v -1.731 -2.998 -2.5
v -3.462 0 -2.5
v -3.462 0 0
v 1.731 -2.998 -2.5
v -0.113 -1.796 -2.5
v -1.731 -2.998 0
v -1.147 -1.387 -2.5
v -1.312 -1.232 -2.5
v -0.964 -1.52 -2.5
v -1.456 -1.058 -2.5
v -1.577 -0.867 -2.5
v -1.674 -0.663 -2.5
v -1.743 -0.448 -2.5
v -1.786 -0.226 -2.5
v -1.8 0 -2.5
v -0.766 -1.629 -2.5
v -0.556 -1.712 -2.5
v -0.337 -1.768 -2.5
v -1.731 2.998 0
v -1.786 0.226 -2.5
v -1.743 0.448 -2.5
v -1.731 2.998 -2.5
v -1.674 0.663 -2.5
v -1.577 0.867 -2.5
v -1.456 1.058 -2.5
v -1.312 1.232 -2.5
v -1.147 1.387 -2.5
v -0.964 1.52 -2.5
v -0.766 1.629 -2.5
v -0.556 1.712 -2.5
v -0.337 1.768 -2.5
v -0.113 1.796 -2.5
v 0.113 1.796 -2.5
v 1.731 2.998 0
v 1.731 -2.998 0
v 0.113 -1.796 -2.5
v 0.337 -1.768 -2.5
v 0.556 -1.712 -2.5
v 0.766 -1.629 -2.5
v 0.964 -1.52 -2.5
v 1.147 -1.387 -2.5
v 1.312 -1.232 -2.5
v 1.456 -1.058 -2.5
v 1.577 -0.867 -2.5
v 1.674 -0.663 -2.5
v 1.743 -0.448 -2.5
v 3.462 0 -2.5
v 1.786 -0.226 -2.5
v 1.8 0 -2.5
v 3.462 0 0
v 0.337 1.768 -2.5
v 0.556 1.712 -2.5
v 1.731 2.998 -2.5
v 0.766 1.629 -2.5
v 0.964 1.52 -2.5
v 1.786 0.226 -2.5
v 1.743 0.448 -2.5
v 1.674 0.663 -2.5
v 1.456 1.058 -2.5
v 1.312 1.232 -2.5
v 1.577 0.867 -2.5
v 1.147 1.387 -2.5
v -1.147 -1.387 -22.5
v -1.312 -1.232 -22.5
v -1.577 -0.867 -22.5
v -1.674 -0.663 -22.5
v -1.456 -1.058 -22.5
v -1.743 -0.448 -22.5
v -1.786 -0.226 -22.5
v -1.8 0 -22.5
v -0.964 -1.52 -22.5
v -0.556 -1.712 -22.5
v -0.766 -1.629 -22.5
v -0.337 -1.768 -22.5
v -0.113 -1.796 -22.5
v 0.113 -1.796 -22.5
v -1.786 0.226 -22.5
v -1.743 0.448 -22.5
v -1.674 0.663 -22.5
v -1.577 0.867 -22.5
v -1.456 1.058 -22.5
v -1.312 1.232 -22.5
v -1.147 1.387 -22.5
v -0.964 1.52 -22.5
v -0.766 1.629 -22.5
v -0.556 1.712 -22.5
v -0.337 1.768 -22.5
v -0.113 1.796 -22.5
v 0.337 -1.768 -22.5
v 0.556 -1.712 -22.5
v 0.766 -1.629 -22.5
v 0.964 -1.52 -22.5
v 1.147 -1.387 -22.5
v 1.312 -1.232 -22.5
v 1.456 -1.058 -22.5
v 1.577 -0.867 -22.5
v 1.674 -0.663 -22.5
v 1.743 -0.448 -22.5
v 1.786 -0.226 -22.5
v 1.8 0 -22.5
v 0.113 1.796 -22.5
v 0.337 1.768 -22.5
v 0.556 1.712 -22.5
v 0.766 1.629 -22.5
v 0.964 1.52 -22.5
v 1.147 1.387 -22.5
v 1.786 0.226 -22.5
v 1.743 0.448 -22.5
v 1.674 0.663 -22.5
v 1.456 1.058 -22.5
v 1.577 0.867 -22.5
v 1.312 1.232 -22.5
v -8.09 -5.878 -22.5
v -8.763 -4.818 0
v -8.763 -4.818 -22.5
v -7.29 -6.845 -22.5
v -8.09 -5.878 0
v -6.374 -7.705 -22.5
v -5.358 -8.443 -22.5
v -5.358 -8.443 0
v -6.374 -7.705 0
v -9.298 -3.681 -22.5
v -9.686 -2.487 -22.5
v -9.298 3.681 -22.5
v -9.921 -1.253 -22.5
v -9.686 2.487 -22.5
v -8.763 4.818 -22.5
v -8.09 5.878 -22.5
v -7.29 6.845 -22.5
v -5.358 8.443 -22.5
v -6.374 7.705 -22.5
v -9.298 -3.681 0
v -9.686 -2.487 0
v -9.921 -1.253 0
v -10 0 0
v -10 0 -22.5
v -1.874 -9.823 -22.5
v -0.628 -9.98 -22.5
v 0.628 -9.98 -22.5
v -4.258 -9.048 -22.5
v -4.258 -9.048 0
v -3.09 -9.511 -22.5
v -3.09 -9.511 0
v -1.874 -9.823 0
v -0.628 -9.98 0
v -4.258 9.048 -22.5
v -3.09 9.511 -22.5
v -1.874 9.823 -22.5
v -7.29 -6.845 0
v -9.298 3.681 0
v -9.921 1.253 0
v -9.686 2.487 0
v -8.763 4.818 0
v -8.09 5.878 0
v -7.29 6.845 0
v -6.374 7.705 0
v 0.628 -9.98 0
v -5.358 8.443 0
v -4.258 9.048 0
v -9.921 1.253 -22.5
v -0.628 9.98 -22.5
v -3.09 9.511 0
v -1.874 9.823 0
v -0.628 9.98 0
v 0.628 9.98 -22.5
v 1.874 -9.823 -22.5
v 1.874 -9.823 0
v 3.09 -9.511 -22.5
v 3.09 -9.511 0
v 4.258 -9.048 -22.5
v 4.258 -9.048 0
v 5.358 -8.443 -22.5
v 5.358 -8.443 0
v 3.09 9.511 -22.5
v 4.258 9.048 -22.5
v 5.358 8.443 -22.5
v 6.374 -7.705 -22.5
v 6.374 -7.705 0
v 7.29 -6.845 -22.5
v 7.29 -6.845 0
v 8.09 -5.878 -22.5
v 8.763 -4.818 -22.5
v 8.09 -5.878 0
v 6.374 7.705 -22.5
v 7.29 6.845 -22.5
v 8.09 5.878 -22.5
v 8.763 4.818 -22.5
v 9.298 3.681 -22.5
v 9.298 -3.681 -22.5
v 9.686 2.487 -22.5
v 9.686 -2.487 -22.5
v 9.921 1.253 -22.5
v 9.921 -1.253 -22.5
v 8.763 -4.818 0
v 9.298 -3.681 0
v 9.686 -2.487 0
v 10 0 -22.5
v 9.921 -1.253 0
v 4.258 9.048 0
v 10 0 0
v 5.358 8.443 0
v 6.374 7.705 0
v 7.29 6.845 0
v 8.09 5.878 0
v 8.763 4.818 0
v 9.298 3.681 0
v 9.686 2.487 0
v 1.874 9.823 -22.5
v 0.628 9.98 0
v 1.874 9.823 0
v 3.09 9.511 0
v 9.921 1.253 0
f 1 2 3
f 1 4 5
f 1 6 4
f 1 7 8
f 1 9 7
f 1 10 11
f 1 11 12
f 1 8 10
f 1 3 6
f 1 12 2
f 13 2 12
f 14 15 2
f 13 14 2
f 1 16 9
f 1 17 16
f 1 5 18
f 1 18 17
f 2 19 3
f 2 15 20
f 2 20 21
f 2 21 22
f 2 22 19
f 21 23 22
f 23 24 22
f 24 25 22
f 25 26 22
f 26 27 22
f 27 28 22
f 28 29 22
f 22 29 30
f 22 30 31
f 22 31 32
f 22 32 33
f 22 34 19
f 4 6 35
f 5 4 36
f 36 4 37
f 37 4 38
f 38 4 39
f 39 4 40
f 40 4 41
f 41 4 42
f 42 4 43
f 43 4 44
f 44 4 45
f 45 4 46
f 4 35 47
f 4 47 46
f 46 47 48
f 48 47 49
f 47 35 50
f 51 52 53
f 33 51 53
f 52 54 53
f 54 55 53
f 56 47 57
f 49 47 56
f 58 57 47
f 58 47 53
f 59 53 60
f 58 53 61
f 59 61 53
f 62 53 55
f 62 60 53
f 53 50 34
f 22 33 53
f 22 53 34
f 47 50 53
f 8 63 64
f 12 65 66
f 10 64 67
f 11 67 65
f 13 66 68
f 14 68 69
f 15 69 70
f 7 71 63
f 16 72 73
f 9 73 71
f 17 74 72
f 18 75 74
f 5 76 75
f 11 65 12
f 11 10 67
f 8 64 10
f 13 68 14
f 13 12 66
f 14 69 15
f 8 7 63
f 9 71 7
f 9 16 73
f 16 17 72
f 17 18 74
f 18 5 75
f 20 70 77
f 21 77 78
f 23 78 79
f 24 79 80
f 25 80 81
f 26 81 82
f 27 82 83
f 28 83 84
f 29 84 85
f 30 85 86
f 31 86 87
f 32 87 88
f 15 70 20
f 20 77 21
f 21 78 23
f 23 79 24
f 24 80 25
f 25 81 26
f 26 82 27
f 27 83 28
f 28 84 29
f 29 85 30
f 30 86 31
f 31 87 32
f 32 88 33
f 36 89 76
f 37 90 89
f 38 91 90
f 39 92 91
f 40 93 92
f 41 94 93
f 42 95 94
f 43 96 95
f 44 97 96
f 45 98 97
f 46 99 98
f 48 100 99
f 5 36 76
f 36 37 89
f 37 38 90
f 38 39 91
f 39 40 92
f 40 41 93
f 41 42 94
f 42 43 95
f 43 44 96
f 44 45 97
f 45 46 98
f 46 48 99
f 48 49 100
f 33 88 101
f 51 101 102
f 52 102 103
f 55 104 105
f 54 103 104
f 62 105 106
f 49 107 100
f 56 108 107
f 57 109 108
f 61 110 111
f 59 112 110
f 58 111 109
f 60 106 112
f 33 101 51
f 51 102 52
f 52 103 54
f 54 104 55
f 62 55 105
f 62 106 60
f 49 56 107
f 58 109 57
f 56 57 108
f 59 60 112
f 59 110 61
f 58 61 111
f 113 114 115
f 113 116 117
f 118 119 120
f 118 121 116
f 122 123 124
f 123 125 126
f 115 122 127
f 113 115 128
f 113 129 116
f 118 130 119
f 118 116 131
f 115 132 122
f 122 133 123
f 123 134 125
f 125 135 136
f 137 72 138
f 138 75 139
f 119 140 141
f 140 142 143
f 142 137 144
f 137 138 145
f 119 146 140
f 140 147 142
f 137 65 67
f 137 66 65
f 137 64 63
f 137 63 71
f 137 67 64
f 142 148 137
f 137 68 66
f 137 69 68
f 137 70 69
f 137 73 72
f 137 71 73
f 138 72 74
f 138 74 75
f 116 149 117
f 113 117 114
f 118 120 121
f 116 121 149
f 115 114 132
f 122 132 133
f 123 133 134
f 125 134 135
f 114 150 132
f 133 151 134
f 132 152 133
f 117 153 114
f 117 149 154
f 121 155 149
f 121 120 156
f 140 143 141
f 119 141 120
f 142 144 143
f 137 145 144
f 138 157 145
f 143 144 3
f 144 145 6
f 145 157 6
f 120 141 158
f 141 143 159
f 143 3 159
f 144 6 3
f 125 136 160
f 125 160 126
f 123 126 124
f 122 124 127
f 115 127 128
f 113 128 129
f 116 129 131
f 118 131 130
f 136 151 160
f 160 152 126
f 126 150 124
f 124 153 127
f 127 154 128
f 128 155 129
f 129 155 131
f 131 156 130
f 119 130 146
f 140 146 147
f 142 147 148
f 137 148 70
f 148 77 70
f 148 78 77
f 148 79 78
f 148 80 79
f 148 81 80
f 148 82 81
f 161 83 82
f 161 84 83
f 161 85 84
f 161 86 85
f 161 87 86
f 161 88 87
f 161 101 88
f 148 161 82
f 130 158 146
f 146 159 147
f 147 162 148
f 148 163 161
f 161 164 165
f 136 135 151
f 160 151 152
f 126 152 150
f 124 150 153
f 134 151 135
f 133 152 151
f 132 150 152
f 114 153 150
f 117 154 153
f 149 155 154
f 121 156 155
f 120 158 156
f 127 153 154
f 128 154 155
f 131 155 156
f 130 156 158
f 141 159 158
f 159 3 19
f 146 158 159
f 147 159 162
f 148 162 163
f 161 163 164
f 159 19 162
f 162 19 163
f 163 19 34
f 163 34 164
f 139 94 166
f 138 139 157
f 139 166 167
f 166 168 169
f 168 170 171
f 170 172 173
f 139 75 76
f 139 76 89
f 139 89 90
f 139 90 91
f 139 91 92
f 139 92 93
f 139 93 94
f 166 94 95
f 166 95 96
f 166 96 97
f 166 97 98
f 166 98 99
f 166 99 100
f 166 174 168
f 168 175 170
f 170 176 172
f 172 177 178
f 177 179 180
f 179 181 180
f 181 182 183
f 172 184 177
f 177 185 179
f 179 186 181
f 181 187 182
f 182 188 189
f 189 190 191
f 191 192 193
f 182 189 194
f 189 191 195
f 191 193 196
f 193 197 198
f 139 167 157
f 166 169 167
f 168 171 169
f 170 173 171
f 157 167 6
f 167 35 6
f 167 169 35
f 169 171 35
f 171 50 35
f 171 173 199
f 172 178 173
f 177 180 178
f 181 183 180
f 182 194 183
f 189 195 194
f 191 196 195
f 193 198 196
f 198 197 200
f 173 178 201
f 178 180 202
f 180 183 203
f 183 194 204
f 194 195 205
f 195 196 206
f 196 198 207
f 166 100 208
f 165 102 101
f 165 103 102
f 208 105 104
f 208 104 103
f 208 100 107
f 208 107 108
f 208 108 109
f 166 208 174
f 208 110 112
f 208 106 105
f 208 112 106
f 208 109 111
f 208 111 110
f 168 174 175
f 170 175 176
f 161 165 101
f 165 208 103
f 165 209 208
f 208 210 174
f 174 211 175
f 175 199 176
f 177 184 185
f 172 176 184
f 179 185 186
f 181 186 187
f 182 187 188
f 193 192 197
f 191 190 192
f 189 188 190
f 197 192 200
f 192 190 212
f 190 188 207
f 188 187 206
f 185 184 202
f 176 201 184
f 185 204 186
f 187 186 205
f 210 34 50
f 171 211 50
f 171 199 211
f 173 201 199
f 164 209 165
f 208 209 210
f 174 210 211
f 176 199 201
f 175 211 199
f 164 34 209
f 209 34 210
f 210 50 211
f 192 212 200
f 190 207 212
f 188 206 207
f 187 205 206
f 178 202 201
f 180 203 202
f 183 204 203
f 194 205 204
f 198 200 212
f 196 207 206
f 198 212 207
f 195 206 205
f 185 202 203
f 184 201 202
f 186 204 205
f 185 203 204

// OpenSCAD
$fn = 50;

difference() {
	union() {
		translate(v = [0, 0, -22.5]) {
			cylinder(h = 22.5, r = 10.0);
		}
	}
	union() {
		translate(v = [0, 0, 0]) {
			rotate(a = [0, 0, 0]) {
				difference() {
					union() {
						translate(v = [0, 0, -2.5]) {
							linear_extrude(height = 2.5) {
								polygon(points = [[3.4619999999999997, 0.0], [1.7310000000000003, 2.9981799479017264], [-1.7309999999999992, 2.9981799479017264], [-3.4619999999999997, 4.2397272186481365e-16], [-1.7310000000000014, -2.998179947901726], [1.7309999999999977, -2.9981799479017277]]);
							}
						}
					}
					union();
				}
			}
		}
		#translate(v = [0, 0, -100.0]) {
			cylinder(h = 200, r = 1.8);
		}
	}
}
